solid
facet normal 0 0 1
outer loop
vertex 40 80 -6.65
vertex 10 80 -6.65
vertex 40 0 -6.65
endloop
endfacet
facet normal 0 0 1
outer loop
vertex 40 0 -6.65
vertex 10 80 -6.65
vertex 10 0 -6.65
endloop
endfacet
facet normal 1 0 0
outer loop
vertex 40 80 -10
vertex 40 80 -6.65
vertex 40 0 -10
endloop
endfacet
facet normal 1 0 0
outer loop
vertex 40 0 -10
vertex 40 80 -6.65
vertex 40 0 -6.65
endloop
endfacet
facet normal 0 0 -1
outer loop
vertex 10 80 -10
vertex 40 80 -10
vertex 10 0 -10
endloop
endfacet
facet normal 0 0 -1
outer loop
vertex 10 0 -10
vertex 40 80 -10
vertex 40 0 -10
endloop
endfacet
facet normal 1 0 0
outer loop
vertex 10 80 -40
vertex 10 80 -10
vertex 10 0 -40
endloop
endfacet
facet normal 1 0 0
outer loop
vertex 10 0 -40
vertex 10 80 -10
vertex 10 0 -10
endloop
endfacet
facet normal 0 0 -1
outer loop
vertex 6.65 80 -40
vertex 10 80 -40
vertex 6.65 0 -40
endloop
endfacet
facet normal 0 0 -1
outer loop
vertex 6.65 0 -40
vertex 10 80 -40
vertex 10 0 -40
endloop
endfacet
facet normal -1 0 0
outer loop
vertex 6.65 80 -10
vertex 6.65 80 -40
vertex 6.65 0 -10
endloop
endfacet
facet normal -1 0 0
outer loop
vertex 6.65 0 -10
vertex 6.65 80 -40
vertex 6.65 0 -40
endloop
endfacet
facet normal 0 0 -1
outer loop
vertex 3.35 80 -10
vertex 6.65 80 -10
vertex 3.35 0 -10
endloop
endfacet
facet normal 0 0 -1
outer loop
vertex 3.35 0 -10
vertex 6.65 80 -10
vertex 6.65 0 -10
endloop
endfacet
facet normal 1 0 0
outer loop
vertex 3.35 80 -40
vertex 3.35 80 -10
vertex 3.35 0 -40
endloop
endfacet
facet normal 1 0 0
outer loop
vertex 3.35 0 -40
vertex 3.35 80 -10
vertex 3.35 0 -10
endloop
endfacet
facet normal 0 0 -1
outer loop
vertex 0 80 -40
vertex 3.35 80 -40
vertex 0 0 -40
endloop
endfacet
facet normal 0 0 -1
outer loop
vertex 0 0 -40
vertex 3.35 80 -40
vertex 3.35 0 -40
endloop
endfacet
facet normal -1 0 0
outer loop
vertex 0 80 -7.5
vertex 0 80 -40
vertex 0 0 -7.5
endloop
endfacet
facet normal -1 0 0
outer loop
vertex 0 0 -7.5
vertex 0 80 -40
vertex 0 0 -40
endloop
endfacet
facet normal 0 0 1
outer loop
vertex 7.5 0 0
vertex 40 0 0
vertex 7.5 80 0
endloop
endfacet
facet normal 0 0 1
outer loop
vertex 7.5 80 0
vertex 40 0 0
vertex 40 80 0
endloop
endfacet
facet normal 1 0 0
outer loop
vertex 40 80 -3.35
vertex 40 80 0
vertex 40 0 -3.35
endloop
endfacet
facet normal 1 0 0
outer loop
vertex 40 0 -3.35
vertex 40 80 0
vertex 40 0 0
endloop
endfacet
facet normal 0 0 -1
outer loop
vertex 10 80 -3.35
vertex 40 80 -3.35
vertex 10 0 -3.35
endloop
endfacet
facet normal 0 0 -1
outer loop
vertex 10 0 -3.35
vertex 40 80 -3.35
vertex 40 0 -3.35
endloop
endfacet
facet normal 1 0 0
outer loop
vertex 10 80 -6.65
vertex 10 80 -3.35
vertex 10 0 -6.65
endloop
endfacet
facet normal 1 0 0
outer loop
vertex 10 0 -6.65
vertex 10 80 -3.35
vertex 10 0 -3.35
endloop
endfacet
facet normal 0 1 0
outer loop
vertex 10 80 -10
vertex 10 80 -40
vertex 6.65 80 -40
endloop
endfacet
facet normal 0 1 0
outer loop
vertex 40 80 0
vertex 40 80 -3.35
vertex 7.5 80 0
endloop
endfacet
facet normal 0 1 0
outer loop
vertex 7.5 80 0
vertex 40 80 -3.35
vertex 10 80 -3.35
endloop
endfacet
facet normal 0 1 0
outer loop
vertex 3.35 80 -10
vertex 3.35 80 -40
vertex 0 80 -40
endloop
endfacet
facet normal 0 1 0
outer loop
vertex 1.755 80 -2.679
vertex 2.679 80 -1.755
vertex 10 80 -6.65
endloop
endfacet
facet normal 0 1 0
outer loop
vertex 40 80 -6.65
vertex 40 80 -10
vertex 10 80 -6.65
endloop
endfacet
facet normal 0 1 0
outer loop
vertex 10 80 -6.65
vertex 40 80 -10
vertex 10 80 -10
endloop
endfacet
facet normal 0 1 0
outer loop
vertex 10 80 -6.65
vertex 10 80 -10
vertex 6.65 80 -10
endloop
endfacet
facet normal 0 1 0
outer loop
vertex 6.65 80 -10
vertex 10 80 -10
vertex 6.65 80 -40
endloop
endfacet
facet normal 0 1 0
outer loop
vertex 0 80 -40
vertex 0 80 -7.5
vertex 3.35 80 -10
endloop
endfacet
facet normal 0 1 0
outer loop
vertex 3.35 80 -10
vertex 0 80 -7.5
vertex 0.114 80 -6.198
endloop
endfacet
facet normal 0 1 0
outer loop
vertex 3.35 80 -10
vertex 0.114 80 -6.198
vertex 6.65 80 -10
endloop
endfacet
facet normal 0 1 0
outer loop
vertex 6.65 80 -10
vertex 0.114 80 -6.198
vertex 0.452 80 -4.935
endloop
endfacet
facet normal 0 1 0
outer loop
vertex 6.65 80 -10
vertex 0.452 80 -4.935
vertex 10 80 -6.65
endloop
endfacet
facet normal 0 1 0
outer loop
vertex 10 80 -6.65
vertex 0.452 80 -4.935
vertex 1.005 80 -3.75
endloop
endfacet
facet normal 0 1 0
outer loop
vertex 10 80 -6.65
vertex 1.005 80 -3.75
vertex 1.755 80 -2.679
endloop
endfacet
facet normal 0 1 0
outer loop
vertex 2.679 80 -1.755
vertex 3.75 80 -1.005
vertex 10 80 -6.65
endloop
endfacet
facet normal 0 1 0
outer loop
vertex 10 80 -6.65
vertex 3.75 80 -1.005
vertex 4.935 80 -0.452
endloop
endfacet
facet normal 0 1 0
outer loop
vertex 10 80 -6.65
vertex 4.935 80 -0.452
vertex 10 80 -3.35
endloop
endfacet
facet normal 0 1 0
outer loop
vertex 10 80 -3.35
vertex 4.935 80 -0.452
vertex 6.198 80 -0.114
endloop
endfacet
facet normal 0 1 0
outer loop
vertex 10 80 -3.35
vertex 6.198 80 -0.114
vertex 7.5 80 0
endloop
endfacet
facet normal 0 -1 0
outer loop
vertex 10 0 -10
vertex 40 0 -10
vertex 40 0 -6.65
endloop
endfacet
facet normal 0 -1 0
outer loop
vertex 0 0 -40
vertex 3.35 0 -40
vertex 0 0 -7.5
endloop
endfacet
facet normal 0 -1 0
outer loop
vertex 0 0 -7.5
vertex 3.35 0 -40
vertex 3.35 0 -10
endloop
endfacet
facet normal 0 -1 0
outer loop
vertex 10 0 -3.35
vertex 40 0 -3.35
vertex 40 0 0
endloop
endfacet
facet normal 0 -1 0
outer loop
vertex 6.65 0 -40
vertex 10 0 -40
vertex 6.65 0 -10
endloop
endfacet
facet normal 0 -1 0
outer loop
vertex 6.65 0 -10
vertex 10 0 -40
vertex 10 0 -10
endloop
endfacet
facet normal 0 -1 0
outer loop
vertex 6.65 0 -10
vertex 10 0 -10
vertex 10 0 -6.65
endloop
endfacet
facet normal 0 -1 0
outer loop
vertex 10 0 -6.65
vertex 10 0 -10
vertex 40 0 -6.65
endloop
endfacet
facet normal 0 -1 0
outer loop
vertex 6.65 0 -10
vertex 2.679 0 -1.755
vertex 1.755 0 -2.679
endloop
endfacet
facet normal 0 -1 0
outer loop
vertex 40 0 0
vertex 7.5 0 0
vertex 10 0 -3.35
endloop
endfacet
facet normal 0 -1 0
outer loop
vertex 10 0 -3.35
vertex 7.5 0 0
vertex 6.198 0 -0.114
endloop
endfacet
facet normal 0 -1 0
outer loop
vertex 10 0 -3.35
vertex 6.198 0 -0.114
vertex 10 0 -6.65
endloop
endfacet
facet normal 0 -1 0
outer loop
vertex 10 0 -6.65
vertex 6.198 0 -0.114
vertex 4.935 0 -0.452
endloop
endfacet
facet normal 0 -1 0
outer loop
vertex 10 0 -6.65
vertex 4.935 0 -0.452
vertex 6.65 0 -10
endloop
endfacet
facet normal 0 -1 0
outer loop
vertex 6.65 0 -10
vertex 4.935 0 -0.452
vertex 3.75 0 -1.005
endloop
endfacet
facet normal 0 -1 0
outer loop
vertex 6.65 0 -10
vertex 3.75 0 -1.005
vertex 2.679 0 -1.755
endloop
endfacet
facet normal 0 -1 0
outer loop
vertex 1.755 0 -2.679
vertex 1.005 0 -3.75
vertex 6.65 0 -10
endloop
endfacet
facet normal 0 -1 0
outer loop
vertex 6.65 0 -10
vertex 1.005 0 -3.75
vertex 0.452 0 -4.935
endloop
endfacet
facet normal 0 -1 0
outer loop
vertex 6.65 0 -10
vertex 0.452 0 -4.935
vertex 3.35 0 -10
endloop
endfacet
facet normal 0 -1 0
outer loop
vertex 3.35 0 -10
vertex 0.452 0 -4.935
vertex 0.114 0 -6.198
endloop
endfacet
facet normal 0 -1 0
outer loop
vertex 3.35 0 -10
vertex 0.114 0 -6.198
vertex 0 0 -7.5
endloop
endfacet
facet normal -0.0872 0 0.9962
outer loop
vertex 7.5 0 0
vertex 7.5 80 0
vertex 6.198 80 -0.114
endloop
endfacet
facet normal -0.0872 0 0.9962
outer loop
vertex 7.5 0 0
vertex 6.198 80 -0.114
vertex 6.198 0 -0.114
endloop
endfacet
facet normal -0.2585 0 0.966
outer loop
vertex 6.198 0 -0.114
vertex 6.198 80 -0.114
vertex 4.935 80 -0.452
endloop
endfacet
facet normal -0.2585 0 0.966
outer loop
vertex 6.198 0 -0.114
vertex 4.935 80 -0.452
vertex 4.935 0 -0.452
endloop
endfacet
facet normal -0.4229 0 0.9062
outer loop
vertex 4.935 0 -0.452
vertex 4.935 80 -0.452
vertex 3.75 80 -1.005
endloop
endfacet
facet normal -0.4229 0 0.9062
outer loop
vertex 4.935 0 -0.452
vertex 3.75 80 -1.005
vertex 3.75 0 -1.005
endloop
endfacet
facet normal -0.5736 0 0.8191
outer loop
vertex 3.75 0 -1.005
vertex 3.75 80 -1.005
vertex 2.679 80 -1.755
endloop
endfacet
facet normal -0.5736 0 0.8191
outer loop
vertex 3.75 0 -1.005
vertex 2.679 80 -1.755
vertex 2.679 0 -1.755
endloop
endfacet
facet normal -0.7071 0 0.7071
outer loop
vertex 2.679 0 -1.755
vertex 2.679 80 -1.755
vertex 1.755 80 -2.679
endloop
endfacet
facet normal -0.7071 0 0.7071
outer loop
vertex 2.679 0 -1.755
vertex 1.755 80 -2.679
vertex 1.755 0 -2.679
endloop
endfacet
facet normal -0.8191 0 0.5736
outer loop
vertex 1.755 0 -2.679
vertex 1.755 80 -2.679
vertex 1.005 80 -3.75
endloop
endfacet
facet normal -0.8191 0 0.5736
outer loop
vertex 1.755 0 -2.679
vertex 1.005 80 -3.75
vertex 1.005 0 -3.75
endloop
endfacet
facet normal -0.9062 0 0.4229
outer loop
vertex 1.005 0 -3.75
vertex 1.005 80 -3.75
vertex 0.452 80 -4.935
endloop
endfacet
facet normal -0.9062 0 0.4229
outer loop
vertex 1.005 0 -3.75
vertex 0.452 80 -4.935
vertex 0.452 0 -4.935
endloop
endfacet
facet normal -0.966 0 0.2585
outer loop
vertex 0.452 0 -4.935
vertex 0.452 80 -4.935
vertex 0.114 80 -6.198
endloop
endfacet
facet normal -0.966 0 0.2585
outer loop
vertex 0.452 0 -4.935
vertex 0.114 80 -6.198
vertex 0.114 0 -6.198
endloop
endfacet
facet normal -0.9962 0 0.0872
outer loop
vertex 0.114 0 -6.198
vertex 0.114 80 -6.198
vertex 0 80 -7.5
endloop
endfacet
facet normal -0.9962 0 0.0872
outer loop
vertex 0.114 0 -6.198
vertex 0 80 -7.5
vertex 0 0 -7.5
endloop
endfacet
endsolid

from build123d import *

# Parameters (mm, degrees)
BOSS_EXTRUDE1_DEPTH = 80
FILLET1_R           = 7.5


with BuildPart() as part:
    # Sketch1 → Boss-Extrude1 (new body)
    with BuildSketch(Plane(origin=(0, 0, 0), x_dir=(1, 0, 0), z_dir=(0, 1, 0))):
        Polygon((40, 6.65), (10, 6.65), (10, 3.35), (40, 3.35), (40, 0), (0, 0), (0, 40), (3.35, 40), (3.35, 10), (6.65, 10), (6.65, 40), (10, 40), (10, 10), (40, 10), align=None)
    extrude(amount=BOSS_EXTRUDE1_DEPTH)

    # Fillet1
    fillet1_edges = [part.edges().sort_by_distance(p)[0] for p in [
        (0, 40, 0),
    ]]
    fillet(fillet1_edges, radius=FILLET1_R)


solid = part.part
